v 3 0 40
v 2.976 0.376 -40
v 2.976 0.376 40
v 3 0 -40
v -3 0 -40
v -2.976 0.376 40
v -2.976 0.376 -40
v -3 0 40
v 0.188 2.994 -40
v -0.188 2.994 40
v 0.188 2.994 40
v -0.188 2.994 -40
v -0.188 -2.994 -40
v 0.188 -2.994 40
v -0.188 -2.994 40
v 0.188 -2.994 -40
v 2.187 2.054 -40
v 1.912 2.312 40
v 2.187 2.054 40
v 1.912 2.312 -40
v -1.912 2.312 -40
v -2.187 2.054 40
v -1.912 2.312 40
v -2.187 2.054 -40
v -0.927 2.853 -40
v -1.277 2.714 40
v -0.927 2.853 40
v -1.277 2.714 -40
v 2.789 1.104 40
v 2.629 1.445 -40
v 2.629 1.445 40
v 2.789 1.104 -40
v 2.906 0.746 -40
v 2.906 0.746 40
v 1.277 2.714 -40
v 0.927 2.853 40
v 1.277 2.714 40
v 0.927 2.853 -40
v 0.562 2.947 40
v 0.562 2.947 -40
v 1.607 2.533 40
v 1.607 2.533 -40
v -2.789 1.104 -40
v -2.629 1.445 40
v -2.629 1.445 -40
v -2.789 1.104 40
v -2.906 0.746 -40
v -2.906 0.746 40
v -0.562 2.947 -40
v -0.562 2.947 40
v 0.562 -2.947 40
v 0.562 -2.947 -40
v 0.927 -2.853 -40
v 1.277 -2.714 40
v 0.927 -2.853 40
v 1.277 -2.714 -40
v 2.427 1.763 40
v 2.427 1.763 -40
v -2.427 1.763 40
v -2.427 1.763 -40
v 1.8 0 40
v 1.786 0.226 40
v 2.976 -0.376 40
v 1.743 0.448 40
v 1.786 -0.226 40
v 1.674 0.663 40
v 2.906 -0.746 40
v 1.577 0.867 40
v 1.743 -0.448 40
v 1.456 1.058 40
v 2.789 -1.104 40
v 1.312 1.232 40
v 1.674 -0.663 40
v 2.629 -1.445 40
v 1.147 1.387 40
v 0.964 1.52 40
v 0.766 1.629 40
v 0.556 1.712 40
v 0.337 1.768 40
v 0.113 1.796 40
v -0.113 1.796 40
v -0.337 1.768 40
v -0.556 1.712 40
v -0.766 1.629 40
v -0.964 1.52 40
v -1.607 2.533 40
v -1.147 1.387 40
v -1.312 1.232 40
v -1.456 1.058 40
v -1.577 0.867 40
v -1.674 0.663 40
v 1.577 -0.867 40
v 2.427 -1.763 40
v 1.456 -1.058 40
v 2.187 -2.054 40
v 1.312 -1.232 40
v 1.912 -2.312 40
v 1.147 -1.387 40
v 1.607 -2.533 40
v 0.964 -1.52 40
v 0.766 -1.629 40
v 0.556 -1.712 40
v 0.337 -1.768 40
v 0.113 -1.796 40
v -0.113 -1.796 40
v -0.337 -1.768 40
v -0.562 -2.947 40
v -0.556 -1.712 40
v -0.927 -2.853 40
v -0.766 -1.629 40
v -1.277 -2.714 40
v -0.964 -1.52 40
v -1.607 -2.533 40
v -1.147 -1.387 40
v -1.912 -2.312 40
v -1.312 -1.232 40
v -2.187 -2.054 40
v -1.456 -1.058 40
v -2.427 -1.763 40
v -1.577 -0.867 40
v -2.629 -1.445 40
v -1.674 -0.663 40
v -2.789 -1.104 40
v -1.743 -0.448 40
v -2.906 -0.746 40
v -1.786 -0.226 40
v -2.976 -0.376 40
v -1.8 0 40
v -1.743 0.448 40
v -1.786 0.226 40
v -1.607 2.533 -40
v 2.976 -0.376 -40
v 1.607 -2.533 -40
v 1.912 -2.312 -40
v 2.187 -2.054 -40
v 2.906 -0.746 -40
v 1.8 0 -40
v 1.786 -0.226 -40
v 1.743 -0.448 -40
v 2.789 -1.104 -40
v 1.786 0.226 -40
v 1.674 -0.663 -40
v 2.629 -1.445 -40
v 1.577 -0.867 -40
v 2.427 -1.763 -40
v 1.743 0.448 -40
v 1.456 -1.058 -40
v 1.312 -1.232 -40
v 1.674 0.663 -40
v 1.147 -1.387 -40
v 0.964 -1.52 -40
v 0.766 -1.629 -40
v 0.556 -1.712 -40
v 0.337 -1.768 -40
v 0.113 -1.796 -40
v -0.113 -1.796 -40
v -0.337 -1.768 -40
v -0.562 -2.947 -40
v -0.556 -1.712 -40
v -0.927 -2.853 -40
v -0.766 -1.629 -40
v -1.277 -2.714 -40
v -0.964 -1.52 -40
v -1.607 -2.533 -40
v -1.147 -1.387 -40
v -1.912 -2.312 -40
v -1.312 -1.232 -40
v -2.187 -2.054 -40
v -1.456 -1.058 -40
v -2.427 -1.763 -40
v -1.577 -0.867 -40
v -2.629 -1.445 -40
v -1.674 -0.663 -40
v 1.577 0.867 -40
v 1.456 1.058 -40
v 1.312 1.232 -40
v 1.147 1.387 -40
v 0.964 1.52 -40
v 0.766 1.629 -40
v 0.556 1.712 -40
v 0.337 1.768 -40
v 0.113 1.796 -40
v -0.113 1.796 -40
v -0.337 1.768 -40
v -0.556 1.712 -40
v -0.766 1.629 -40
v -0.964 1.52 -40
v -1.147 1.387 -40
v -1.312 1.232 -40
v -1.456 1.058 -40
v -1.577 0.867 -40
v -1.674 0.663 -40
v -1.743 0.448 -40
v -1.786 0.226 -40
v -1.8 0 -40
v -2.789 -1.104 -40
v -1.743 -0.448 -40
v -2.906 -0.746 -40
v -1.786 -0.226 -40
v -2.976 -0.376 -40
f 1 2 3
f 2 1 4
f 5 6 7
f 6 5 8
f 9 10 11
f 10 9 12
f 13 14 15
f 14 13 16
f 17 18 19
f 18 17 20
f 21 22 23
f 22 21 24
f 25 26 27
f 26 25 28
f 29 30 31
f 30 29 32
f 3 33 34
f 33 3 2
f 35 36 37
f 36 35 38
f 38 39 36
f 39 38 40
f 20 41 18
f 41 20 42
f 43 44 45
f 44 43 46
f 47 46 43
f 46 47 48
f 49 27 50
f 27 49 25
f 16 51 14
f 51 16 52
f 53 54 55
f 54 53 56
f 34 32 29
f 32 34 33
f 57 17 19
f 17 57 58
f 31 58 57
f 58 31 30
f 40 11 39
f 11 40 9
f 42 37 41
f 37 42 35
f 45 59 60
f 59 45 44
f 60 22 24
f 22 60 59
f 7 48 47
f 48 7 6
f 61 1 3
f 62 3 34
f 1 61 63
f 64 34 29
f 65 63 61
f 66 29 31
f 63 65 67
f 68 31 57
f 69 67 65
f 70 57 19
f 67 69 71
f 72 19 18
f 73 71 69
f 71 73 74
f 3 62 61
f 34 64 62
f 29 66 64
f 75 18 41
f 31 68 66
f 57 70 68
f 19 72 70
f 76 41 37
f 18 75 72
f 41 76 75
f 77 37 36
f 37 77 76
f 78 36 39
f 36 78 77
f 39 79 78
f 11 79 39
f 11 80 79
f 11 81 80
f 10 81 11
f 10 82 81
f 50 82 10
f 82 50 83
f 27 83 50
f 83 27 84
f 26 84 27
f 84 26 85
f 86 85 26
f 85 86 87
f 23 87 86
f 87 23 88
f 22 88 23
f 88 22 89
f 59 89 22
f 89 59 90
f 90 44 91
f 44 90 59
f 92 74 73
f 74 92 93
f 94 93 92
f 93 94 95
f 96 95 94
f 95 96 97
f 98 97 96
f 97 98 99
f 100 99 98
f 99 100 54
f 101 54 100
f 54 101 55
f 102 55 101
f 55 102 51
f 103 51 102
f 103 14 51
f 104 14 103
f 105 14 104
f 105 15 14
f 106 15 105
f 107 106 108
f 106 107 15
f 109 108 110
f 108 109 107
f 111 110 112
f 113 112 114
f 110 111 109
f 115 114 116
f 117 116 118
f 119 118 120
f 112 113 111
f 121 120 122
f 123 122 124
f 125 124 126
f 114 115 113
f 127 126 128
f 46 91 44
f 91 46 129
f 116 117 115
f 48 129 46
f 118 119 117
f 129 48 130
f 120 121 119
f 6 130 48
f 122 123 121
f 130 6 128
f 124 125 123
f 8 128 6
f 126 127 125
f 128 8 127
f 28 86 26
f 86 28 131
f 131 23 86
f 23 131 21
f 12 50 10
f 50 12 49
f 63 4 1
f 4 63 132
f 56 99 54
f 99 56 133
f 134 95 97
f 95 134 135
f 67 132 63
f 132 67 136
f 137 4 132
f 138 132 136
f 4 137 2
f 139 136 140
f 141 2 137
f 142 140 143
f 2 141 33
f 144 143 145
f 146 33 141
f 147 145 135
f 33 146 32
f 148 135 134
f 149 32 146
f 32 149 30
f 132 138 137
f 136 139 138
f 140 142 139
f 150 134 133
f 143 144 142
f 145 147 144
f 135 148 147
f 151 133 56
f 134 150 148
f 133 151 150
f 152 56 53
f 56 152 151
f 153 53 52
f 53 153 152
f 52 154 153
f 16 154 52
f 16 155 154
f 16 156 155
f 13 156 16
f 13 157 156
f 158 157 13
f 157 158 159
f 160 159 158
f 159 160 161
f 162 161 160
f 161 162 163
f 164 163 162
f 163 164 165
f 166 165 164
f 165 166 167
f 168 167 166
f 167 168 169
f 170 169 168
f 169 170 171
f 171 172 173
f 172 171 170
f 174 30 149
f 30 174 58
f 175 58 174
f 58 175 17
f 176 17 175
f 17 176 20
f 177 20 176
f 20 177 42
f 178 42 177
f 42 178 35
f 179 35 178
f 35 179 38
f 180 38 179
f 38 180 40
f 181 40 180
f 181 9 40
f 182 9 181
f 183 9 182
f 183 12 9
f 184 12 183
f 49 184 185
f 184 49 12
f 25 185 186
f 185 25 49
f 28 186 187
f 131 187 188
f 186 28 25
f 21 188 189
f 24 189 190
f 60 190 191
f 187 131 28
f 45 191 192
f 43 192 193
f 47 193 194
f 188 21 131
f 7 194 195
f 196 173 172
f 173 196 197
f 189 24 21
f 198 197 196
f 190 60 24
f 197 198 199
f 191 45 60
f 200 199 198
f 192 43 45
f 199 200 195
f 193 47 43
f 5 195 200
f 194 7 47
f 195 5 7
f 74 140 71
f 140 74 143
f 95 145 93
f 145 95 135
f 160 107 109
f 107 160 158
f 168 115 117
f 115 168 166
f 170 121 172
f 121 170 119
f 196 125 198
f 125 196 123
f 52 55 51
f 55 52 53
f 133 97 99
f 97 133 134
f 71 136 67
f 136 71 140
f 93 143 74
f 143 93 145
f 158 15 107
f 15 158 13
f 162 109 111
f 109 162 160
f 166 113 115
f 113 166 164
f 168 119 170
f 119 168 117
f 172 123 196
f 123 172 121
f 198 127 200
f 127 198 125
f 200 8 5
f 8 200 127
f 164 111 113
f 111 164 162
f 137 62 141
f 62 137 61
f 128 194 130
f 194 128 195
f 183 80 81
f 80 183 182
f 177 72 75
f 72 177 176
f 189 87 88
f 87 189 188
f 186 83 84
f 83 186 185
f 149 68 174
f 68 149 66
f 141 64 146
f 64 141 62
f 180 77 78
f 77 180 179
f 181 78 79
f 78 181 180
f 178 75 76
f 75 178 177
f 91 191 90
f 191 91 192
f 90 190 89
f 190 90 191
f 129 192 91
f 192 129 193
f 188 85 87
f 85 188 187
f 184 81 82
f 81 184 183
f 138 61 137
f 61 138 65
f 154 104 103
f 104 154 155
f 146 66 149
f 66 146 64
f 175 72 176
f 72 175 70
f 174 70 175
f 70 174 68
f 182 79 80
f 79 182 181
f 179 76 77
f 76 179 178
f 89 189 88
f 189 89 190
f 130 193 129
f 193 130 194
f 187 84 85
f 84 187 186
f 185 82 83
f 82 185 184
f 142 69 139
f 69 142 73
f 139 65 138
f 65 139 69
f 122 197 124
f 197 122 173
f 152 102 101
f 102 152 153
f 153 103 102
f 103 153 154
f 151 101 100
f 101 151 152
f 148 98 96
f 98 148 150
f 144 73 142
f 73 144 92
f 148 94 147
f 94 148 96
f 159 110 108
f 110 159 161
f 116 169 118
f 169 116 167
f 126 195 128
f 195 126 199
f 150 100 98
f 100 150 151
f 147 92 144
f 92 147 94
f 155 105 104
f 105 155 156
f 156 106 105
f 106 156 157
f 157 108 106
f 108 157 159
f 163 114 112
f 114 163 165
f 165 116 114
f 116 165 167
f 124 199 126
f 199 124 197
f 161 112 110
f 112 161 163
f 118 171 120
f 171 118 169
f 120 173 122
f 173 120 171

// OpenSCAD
$fn = 50;


difference() {
	union() {
		translate(v = [0, 0, -40.0000000000]) {
			cylinder(h = 80, r = 3.0000000000);
		}
	}
	union() {
		translate(v = [0, 0, -100.0000000000]) {
			cylinder(h = 200, r = 1.8000000000);
		}
	}
}
